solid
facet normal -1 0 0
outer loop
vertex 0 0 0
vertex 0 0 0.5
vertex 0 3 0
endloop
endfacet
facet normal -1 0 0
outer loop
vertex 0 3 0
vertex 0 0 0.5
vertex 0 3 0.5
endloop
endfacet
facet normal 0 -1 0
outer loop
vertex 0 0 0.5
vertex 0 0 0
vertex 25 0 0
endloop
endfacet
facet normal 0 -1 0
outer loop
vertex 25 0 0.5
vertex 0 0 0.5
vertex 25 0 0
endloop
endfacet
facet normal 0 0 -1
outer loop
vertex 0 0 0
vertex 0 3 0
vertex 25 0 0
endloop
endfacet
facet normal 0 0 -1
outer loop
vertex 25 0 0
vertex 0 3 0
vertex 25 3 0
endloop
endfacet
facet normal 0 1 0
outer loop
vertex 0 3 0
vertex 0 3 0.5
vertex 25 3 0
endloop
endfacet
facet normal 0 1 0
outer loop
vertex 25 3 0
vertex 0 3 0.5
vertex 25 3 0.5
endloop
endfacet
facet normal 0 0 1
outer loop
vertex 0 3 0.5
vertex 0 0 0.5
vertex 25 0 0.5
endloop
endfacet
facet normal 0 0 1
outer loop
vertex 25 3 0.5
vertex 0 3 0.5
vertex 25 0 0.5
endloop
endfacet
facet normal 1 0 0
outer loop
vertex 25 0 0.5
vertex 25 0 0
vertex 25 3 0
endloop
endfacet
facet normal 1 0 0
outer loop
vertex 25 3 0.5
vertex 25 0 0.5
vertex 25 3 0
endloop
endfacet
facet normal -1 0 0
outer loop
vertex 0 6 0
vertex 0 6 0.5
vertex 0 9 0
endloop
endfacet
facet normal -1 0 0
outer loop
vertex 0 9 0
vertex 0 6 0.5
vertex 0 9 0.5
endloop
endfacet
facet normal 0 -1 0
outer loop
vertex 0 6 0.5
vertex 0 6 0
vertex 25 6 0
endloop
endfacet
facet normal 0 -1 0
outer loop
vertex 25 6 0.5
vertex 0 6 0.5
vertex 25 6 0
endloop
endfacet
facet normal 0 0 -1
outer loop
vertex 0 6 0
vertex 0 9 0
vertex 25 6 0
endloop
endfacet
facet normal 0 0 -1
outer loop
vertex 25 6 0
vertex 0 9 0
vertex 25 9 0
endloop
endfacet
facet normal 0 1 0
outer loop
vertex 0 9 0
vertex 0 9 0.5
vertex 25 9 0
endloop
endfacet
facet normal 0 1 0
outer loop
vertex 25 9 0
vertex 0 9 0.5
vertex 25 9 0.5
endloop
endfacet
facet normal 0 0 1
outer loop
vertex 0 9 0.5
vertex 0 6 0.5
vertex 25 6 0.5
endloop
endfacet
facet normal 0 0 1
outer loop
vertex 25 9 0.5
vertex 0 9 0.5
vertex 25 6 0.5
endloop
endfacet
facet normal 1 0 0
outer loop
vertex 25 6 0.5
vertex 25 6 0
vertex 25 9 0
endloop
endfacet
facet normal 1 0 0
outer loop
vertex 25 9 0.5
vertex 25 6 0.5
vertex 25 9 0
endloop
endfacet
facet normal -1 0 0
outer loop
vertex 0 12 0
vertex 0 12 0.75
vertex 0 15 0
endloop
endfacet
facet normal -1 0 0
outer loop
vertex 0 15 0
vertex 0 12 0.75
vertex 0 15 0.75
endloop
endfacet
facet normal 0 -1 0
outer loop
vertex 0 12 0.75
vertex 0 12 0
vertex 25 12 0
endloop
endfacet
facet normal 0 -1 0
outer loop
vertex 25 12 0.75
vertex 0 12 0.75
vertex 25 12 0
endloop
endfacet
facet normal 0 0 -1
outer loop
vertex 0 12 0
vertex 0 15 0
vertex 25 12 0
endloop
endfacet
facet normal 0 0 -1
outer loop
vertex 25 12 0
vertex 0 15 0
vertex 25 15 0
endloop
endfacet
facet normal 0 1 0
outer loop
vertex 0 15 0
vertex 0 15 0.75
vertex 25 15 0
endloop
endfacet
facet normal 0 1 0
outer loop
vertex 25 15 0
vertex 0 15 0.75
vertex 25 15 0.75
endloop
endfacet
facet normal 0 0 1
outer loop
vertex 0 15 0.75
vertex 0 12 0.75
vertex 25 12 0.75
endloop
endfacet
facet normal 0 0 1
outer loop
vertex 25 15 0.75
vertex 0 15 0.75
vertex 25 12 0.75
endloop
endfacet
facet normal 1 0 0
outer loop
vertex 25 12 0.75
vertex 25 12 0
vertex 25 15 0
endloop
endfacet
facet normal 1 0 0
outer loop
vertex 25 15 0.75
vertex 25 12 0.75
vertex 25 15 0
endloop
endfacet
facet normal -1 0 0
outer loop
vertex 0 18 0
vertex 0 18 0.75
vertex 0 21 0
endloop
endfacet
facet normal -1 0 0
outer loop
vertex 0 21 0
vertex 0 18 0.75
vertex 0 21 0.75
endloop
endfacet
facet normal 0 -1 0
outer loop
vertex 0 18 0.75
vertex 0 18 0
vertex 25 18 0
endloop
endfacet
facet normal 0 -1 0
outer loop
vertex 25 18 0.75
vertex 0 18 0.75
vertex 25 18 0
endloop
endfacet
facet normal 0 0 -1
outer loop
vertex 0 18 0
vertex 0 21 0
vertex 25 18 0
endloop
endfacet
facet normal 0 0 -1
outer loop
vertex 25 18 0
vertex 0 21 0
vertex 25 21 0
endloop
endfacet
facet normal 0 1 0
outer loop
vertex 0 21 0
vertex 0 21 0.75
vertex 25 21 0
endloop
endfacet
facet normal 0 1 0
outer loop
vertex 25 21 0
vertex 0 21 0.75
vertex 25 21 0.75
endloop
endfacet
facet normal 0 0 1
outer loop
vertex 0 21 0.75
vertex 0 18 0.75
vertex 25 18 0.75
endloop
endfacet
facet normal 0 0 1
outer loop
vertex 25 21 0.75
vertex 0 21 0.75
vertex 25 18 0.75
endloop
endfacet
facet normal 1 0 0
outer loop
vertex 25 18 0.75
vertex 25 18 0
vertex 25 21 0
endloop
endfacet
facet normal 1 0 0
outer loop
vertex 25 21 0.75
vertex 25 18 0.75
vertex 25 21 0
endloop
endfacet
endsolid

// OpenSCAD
cube([25, 3, .5]);
translate([0,6,0]) cube([25, 3, .5]);

translate([0,12,0])cube([25, 3, .75]);
translate([0,18,0]) cube([25, 3, .75]);
